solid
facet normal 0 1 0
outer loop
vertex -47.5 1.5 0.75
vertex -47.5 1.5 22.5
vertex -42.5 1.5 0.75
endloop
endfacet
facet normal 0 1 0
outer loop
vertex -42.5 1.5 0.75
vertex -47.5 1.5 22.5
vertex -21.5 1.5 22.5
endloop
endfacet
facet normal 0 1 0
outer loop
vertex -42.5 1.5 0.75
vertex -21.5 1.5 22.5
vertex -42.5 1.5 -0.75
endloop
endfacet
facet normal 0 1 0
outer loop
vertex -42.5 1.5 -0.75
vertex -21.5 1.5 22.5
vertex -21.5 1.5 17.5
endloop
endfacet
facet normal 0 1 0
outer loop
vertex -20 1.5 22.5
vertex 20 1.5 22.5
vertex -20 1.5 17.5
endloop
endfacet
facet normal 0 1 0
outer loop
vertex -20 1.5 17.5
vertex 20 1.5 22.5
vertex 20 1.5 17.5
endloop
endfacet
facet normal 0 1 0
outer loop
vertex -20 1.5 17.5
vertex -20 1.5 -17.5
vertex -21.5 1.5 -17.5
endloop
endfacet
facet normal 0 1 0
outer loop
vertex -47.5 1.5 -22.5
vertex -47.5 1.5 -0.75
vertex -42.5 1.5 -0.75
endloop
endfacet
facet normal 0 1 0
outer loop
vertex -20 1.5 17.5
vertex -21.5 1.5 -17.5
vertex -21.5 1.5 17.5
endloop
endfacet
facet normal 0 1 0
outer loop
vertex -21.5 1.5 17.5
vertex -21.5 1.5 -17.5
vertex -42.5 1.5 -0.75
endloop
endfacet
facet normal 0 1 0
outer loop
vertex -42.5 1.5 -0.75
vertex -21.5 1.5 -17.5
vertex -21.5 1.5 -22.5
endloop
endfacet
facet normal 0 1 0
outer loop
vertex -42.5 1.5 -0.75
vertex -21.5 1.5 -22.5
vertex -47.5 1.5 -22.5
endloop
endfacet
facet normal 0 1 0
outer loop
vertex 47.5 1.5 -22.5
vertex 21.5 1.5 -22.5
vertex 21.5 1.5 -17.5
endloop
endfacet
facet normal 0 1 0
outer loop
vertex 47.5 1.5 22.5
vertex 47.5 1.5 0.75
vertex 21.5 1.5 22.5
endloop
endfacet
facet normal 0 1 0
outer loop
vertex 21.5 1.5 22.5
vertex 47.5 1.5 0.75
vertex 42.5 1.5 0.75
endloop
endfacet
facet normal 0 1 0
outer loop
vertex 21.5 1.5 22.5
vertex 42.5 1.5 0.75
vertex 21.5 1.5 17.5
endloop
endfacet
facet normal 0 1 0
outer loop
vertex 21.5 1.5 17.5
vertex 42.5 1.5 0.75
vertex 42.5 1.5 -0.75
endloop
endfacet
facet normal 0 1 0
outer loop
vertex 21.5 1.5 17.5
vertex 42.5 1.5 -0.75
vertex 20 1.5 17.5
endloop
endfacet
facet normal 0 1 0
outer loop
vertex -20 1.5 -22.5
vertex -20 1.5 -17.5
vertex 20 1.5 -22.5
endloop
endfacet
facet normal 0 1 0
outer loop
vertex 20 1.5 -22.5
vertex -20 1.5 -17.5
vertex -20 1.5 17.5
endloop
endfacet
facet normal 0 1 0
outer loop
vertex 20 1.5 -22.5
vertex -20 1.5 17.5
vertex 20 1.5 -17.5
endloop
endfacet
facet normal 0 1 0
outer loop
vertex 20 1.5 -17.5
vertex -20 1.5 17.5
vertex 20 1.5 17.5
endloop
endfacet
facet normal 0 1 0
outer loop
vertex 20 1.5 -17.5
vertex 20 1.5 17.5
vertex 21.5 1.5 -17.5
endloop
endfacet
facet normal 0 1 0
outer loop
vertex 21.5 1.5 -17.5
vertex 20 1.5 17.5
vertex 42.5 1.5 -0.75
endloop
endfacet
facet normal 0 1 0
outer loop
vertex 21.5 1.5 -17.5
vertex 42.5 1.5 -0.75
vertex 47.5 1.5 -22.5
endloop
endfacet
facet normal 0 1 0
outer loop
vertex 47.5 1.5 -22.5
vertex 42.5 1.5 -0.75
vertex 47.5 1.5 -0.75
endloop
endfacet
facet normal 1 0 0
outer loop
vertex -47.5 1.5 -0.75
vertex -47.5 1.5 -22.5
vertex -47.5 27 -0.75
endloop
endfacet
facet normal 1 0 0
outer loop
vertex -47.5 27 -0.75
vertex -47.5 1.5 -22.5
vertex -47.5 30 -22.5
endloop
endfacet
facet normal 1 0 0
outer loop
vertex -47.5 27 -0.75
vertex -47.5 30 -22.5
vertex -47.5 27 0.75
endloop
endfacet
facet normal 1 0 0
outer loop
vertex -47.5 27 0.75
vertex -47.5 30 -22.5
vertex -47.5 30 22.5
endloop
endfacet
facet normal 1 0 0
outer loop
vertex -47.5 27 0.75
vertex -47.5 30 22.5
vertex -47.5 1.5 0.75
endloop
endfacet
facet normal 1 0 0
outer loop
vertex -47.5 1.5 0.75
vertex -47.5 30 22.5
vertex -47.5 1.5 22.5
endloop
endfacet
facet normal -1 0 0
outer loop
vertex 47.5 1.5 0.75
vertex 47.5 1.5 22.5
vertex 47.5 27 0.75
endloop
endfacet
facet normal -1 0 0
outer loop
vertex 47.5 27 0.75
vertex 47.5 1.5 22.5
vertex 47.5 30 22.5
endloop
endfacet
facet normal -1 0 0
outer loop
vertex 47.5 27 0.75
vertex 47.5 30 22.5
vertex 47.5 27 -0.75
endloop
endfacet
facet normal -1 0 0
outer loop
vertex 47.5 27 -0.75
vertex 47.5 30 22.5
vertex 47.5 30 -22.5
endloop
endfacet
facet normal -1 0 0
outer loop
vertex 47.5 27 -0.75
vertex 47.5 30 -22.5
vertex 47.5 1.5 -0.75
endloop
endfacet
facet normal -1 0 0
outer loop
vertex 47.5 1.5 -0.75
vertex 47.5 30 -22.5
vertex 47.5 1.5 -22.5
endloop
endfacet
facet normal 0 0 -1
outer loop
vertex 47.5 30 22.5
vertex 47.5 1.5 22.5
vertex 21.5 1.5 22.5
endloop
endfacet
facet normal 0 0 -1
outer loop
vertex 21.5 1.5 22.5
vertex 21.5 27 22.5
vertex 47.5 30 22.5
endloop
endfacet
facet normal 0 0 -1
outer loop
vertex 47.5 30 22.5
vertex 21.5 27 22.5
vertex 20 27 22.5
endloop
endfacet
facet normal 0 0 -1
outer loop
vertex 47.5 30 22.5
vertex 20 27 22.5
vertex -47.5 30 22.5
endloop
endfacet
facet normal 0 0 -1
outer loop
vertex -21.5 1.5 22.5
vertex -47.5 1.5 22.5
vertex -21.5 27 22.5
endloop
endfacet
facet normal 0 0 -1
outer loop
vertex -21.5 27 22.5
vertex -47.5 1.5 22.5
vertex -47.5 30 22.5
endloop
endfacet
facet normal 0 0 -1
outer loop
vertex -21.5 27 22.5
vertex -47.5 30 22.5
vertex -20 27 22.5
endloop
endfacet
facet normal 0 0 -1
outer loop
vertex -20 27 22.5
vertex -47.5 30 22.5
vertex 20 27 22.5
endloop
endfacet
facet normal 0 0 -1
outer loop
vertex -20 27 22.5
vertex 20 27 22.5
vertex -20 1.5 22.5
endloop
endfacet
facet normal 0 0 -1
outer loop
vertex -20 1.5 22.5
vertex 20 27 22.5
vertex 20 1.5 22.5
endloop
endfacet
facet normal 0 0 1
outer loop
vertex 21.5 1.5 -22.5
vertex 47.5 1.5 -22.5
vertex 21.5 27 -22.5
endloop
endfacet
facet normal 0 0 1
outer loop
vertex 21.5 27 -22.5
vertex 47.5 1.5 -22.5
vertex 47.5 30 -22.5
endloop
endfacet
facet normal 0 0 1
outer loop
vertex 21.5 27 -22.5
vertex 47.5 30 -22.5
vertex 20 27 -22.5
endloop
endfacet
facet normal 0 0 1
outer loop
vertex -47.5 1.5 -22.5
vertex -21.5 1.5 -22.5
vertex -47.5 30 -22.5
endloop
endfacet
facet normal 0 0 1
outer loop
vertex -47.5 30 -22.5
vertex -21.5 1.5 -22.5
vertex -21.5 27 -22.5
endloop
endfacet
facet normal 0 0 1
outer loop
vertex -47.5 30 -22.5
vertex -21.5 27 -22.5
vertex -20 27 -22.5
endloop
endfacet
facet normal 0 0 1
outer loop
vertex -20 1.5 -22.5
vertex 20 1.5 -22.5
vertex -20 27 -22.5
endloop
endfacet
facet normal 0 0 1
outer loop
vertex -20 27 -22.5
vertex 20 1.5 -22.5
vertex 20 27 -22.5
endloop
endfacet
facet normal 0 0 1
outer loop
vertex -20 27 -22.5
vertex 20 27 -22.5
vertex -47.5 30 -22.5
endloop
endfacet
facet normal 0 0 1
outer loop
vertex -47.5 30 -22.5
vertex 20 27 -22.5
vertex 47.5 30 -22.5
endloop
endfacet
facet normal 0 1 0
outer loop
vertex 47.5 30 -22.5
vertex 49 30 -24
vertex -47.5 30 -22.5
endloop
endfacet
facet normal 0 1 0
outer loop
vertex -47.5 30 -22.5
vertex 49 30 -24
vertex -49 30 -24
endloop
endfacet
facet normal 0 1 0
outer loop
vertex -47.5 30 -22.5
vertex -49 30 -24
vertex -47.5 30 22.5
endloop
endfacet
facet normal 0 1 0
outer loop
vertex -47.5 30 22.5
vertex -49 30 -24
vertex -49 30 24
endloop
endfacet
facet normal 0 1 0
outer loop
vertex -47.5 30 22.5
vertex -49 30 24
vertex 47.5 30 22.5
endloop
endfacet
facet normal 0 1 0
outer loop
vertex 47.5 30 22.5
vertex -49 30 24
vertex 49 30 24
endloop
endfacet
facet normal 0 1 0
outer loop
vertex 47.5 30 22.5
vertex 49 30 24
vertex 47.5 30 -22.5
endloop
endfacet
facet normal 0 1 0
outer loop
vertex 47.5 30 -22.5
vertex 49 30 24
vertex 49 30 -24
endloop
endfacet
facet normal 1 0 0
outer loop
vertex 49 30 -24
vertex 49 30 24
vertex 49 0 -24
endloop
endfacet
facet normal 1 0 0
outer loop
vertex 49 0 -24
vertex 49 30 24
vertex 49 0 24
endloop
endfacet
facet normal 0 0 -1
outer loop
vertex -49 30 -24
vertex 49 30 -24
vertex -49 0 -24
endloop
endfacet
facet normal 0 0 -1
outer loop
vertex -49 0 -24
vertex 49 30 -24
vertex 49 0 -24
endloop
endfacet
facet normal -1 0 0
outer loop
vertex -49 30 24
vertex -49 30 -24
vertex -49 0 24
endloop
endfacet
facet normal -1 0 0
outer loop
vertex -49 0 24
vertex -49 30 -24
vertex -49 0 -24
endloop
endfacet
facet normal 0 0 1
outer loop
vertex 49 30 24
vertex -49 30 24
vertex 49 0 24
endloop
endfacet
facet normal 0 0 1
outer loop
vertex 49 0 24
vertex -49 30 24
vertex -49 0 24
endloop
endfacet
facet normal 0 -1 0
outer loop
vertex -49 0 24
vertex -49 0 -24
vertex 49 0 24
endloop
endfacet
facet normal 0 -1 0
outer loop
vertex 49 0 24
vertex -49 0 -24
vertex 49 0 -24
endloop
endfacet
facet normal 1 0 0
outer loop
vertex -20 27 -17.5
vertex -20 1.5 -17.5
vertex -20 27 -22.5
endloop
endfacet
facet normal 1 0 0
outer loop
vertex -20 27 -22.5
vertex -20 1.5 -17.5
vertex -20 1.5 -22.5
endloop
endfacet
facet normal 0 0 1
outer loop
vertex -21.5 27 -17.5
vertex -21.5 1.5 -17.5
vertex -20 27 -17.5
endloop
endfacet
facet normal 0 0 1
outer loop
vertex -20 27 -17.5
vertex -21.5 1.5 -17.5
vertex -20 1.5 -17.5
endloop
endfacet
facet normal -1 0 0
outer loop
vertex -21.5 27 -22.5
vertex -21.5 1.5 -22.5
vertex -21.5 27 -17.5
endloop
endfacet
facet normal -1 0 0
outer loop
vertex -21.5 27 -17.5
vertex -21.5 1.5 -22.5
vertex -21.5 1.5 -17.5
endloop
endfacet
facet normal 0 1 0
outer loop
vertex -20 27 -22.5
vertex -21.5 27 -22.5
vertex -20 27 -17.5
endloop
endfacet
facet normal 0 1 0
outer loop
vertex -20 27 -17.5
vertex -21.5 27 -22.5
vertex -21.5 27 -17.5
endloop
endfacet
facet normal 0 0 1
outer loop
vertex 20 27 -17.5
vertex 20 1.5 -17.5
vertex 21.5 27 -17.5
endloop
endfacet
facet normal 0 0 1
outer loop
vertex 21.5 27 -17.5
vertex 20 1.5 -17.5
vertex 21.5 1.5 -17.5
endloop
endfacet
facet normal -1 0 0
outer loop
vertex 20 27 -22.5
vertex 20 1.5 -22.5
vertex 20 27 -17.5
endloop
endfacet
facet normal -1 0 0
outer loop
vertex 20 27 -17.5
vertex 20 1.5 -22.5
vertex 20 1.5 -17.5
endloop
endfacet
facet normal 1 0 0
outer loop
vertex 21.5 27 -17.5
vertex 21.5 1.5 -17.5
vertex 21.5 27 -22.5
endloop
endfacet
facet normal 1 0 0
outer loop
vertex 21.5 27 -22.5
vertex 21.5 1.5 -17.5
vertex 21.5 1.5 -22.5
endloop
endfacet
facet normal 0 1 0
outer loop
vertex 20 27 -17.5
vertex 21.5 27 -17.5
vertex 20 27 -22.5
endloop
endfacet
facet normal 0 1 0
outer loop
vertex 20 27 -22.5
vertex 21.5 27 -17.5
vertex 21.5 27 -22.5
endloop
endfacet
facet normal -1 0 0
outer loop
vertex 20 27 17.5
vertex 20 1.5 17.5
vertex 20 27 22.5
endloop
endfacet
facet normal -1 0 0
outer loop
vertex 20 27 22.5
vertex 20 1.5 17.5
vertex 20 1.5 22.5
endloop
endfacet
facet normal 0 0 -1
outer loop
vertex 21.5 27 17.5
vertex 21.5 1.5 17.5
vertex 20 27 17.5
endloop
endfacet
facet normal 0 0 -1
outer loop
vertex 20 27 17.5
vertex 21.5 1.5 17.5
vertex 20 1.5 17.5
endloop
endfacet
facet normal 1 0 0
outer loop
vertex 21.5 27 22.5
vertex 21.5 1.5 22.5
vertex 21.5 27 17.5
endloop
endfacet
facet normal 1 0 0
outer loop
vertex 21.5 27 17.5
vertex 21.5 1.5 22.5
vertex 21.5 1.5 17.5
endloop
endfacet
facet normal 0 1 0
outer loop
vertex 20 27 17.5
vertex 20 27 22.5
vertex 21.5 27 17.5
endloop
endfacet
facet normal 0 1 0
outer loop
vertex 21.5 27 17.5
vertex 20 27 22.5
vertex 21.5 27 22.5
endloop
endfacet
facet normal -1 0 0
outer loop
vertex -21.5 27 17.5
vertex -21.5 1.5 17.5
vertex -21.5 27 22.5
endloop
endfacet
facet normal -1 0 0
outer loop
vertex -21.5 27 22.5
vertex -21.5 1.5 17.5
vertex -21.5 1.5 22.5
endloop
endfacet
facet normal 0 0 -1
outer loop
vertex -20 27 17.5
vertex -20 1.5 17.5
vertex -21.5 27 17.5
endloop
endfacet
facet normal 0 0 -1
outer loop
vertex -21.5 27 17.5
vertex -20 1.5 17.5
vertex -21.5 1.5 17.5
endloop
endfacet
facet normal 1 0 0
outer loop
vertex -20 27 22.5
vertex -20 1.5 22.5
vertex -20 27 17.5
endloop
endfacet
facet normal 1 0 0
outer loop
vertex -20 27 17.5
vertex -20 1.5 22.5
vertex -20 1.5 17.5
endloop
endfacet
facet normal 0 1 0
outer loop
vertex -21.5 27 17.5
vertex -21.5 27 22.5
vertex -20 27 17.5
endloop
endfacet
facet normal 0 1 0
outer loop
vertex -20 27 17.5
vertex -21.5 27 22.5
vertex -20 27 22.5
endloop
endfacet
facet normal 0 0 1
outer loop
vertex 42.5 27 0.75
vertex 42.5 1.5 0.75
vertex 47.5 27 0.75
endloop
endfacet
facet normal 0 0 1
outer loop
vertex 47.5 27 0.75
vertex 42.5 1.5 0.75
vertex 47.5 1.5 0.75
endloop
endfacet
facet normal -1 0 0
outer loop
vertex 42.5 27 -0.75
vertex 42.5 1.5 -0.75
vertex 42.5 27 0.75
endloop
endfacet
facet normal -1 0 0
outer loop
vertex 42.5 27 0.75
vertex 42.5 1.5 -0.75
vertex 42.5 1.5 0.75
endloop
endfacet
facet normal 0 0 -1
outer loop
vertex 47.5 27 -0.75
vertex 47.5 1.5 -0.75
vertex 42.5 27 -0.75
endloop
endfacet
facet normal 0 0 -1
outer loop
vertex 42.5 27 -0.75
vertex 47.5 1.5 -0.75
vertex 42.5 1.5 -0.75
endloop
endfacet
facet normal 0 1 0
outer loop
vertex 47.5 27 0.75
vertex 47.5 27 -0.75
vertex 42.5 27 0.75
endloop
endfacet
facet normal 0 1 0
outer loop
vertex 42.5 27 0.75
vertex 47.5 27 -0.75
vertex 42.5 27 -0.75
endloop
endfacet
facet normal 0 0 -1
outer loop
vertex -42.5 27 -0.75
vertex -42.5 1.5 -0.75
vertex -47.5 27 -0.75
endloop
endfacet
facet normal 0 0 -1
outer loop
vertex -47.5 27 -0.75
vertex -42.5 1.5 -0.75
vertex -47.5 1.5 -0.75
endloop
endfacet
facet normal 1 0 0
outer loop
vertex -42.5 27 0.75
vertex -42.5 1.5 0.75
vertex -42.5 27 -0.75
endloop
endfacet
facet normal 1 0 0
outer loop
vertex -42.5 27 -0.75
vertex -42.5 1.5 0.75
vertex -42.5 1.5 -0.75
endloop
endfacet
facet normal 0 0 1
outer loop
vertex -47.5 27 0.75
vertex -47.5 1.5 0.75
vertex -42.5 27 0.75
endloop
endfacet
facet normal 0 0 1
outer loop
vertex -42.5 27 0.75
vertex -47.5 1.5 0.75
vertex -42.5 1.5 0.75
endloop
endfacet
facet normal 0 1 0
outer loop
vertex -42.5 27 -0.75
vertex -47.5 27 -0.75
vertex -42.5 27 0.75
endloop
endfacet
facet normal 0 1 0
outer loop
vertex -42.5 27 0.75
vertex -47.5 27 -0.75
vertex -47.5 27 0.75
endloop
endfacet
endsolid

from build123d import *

# Parameters (mm, degrees)
SKETCH1_W           = 98
SKETCH1_H           = 48
BOSS_EXTRUDE1_DEPTH = 30
SHELL1_T            = -1.5
SKETCH2_W           = 1.5
SKETCH2_H           = 5
SKETCH2_W_2         = 5
SKETCH2_H_2         = 1.5
BOSS_EXTRUDE2_DEPTH = 25.5


with BuildPart() as part:
    # Sketch1 → Boss-Extrude1 (new body)
    with BuildSketch(Plane(origin=(0, 0, 0), x_dir=(1, 0, 0), z_dir=(0, 1, 0))):
        Rectangle(SKETCH1_W, SKETCH1_H)
    extrude(amount=BOSS_EXTRUDE1_DEPTH)

    # Shell1
    shell1_openings = [part.faces().sort_by_distance(p)[0] for p in [
        (0, 30, 0),
    ]]
    offset(amount=SHELL1_T, openings=shell1_openings, kind=Kind.INTERSECTION)

    # Sketch2 → Boss-Extrude2 (add)
    with BuildSketch(Plane(origin=(0, 1.5, 0), x_dir=(1, 0, 0), z_dir=(0, 1, 0))):
        with Locations((-20.75, 20)):
            Rectangle(SKETCH2_W, SKETCH2_H)
        with Locations((20.75, 20)):
            Rectangle(SKETCH2_W, SKETCH2_H)
        with Locations((20.75, -20)):
            Rectangle(SKETCH2_W, SKETCH2_H)
        with Locations((-20.75, -20)):
            Rectangle(SKETCH2_W, SKETCH2_H)
        with Locations((45, 0)):
            Rectangle(SKETCH2_W_2, SKETCH2_H_2)
        with Locations((-45, 0)):
            Rectangle(SKETCH2_W_2, SKETCH2_H_2)
    extrude(amount=BOSS_EXTRUDE2_DEPTH)


solid = part.part
